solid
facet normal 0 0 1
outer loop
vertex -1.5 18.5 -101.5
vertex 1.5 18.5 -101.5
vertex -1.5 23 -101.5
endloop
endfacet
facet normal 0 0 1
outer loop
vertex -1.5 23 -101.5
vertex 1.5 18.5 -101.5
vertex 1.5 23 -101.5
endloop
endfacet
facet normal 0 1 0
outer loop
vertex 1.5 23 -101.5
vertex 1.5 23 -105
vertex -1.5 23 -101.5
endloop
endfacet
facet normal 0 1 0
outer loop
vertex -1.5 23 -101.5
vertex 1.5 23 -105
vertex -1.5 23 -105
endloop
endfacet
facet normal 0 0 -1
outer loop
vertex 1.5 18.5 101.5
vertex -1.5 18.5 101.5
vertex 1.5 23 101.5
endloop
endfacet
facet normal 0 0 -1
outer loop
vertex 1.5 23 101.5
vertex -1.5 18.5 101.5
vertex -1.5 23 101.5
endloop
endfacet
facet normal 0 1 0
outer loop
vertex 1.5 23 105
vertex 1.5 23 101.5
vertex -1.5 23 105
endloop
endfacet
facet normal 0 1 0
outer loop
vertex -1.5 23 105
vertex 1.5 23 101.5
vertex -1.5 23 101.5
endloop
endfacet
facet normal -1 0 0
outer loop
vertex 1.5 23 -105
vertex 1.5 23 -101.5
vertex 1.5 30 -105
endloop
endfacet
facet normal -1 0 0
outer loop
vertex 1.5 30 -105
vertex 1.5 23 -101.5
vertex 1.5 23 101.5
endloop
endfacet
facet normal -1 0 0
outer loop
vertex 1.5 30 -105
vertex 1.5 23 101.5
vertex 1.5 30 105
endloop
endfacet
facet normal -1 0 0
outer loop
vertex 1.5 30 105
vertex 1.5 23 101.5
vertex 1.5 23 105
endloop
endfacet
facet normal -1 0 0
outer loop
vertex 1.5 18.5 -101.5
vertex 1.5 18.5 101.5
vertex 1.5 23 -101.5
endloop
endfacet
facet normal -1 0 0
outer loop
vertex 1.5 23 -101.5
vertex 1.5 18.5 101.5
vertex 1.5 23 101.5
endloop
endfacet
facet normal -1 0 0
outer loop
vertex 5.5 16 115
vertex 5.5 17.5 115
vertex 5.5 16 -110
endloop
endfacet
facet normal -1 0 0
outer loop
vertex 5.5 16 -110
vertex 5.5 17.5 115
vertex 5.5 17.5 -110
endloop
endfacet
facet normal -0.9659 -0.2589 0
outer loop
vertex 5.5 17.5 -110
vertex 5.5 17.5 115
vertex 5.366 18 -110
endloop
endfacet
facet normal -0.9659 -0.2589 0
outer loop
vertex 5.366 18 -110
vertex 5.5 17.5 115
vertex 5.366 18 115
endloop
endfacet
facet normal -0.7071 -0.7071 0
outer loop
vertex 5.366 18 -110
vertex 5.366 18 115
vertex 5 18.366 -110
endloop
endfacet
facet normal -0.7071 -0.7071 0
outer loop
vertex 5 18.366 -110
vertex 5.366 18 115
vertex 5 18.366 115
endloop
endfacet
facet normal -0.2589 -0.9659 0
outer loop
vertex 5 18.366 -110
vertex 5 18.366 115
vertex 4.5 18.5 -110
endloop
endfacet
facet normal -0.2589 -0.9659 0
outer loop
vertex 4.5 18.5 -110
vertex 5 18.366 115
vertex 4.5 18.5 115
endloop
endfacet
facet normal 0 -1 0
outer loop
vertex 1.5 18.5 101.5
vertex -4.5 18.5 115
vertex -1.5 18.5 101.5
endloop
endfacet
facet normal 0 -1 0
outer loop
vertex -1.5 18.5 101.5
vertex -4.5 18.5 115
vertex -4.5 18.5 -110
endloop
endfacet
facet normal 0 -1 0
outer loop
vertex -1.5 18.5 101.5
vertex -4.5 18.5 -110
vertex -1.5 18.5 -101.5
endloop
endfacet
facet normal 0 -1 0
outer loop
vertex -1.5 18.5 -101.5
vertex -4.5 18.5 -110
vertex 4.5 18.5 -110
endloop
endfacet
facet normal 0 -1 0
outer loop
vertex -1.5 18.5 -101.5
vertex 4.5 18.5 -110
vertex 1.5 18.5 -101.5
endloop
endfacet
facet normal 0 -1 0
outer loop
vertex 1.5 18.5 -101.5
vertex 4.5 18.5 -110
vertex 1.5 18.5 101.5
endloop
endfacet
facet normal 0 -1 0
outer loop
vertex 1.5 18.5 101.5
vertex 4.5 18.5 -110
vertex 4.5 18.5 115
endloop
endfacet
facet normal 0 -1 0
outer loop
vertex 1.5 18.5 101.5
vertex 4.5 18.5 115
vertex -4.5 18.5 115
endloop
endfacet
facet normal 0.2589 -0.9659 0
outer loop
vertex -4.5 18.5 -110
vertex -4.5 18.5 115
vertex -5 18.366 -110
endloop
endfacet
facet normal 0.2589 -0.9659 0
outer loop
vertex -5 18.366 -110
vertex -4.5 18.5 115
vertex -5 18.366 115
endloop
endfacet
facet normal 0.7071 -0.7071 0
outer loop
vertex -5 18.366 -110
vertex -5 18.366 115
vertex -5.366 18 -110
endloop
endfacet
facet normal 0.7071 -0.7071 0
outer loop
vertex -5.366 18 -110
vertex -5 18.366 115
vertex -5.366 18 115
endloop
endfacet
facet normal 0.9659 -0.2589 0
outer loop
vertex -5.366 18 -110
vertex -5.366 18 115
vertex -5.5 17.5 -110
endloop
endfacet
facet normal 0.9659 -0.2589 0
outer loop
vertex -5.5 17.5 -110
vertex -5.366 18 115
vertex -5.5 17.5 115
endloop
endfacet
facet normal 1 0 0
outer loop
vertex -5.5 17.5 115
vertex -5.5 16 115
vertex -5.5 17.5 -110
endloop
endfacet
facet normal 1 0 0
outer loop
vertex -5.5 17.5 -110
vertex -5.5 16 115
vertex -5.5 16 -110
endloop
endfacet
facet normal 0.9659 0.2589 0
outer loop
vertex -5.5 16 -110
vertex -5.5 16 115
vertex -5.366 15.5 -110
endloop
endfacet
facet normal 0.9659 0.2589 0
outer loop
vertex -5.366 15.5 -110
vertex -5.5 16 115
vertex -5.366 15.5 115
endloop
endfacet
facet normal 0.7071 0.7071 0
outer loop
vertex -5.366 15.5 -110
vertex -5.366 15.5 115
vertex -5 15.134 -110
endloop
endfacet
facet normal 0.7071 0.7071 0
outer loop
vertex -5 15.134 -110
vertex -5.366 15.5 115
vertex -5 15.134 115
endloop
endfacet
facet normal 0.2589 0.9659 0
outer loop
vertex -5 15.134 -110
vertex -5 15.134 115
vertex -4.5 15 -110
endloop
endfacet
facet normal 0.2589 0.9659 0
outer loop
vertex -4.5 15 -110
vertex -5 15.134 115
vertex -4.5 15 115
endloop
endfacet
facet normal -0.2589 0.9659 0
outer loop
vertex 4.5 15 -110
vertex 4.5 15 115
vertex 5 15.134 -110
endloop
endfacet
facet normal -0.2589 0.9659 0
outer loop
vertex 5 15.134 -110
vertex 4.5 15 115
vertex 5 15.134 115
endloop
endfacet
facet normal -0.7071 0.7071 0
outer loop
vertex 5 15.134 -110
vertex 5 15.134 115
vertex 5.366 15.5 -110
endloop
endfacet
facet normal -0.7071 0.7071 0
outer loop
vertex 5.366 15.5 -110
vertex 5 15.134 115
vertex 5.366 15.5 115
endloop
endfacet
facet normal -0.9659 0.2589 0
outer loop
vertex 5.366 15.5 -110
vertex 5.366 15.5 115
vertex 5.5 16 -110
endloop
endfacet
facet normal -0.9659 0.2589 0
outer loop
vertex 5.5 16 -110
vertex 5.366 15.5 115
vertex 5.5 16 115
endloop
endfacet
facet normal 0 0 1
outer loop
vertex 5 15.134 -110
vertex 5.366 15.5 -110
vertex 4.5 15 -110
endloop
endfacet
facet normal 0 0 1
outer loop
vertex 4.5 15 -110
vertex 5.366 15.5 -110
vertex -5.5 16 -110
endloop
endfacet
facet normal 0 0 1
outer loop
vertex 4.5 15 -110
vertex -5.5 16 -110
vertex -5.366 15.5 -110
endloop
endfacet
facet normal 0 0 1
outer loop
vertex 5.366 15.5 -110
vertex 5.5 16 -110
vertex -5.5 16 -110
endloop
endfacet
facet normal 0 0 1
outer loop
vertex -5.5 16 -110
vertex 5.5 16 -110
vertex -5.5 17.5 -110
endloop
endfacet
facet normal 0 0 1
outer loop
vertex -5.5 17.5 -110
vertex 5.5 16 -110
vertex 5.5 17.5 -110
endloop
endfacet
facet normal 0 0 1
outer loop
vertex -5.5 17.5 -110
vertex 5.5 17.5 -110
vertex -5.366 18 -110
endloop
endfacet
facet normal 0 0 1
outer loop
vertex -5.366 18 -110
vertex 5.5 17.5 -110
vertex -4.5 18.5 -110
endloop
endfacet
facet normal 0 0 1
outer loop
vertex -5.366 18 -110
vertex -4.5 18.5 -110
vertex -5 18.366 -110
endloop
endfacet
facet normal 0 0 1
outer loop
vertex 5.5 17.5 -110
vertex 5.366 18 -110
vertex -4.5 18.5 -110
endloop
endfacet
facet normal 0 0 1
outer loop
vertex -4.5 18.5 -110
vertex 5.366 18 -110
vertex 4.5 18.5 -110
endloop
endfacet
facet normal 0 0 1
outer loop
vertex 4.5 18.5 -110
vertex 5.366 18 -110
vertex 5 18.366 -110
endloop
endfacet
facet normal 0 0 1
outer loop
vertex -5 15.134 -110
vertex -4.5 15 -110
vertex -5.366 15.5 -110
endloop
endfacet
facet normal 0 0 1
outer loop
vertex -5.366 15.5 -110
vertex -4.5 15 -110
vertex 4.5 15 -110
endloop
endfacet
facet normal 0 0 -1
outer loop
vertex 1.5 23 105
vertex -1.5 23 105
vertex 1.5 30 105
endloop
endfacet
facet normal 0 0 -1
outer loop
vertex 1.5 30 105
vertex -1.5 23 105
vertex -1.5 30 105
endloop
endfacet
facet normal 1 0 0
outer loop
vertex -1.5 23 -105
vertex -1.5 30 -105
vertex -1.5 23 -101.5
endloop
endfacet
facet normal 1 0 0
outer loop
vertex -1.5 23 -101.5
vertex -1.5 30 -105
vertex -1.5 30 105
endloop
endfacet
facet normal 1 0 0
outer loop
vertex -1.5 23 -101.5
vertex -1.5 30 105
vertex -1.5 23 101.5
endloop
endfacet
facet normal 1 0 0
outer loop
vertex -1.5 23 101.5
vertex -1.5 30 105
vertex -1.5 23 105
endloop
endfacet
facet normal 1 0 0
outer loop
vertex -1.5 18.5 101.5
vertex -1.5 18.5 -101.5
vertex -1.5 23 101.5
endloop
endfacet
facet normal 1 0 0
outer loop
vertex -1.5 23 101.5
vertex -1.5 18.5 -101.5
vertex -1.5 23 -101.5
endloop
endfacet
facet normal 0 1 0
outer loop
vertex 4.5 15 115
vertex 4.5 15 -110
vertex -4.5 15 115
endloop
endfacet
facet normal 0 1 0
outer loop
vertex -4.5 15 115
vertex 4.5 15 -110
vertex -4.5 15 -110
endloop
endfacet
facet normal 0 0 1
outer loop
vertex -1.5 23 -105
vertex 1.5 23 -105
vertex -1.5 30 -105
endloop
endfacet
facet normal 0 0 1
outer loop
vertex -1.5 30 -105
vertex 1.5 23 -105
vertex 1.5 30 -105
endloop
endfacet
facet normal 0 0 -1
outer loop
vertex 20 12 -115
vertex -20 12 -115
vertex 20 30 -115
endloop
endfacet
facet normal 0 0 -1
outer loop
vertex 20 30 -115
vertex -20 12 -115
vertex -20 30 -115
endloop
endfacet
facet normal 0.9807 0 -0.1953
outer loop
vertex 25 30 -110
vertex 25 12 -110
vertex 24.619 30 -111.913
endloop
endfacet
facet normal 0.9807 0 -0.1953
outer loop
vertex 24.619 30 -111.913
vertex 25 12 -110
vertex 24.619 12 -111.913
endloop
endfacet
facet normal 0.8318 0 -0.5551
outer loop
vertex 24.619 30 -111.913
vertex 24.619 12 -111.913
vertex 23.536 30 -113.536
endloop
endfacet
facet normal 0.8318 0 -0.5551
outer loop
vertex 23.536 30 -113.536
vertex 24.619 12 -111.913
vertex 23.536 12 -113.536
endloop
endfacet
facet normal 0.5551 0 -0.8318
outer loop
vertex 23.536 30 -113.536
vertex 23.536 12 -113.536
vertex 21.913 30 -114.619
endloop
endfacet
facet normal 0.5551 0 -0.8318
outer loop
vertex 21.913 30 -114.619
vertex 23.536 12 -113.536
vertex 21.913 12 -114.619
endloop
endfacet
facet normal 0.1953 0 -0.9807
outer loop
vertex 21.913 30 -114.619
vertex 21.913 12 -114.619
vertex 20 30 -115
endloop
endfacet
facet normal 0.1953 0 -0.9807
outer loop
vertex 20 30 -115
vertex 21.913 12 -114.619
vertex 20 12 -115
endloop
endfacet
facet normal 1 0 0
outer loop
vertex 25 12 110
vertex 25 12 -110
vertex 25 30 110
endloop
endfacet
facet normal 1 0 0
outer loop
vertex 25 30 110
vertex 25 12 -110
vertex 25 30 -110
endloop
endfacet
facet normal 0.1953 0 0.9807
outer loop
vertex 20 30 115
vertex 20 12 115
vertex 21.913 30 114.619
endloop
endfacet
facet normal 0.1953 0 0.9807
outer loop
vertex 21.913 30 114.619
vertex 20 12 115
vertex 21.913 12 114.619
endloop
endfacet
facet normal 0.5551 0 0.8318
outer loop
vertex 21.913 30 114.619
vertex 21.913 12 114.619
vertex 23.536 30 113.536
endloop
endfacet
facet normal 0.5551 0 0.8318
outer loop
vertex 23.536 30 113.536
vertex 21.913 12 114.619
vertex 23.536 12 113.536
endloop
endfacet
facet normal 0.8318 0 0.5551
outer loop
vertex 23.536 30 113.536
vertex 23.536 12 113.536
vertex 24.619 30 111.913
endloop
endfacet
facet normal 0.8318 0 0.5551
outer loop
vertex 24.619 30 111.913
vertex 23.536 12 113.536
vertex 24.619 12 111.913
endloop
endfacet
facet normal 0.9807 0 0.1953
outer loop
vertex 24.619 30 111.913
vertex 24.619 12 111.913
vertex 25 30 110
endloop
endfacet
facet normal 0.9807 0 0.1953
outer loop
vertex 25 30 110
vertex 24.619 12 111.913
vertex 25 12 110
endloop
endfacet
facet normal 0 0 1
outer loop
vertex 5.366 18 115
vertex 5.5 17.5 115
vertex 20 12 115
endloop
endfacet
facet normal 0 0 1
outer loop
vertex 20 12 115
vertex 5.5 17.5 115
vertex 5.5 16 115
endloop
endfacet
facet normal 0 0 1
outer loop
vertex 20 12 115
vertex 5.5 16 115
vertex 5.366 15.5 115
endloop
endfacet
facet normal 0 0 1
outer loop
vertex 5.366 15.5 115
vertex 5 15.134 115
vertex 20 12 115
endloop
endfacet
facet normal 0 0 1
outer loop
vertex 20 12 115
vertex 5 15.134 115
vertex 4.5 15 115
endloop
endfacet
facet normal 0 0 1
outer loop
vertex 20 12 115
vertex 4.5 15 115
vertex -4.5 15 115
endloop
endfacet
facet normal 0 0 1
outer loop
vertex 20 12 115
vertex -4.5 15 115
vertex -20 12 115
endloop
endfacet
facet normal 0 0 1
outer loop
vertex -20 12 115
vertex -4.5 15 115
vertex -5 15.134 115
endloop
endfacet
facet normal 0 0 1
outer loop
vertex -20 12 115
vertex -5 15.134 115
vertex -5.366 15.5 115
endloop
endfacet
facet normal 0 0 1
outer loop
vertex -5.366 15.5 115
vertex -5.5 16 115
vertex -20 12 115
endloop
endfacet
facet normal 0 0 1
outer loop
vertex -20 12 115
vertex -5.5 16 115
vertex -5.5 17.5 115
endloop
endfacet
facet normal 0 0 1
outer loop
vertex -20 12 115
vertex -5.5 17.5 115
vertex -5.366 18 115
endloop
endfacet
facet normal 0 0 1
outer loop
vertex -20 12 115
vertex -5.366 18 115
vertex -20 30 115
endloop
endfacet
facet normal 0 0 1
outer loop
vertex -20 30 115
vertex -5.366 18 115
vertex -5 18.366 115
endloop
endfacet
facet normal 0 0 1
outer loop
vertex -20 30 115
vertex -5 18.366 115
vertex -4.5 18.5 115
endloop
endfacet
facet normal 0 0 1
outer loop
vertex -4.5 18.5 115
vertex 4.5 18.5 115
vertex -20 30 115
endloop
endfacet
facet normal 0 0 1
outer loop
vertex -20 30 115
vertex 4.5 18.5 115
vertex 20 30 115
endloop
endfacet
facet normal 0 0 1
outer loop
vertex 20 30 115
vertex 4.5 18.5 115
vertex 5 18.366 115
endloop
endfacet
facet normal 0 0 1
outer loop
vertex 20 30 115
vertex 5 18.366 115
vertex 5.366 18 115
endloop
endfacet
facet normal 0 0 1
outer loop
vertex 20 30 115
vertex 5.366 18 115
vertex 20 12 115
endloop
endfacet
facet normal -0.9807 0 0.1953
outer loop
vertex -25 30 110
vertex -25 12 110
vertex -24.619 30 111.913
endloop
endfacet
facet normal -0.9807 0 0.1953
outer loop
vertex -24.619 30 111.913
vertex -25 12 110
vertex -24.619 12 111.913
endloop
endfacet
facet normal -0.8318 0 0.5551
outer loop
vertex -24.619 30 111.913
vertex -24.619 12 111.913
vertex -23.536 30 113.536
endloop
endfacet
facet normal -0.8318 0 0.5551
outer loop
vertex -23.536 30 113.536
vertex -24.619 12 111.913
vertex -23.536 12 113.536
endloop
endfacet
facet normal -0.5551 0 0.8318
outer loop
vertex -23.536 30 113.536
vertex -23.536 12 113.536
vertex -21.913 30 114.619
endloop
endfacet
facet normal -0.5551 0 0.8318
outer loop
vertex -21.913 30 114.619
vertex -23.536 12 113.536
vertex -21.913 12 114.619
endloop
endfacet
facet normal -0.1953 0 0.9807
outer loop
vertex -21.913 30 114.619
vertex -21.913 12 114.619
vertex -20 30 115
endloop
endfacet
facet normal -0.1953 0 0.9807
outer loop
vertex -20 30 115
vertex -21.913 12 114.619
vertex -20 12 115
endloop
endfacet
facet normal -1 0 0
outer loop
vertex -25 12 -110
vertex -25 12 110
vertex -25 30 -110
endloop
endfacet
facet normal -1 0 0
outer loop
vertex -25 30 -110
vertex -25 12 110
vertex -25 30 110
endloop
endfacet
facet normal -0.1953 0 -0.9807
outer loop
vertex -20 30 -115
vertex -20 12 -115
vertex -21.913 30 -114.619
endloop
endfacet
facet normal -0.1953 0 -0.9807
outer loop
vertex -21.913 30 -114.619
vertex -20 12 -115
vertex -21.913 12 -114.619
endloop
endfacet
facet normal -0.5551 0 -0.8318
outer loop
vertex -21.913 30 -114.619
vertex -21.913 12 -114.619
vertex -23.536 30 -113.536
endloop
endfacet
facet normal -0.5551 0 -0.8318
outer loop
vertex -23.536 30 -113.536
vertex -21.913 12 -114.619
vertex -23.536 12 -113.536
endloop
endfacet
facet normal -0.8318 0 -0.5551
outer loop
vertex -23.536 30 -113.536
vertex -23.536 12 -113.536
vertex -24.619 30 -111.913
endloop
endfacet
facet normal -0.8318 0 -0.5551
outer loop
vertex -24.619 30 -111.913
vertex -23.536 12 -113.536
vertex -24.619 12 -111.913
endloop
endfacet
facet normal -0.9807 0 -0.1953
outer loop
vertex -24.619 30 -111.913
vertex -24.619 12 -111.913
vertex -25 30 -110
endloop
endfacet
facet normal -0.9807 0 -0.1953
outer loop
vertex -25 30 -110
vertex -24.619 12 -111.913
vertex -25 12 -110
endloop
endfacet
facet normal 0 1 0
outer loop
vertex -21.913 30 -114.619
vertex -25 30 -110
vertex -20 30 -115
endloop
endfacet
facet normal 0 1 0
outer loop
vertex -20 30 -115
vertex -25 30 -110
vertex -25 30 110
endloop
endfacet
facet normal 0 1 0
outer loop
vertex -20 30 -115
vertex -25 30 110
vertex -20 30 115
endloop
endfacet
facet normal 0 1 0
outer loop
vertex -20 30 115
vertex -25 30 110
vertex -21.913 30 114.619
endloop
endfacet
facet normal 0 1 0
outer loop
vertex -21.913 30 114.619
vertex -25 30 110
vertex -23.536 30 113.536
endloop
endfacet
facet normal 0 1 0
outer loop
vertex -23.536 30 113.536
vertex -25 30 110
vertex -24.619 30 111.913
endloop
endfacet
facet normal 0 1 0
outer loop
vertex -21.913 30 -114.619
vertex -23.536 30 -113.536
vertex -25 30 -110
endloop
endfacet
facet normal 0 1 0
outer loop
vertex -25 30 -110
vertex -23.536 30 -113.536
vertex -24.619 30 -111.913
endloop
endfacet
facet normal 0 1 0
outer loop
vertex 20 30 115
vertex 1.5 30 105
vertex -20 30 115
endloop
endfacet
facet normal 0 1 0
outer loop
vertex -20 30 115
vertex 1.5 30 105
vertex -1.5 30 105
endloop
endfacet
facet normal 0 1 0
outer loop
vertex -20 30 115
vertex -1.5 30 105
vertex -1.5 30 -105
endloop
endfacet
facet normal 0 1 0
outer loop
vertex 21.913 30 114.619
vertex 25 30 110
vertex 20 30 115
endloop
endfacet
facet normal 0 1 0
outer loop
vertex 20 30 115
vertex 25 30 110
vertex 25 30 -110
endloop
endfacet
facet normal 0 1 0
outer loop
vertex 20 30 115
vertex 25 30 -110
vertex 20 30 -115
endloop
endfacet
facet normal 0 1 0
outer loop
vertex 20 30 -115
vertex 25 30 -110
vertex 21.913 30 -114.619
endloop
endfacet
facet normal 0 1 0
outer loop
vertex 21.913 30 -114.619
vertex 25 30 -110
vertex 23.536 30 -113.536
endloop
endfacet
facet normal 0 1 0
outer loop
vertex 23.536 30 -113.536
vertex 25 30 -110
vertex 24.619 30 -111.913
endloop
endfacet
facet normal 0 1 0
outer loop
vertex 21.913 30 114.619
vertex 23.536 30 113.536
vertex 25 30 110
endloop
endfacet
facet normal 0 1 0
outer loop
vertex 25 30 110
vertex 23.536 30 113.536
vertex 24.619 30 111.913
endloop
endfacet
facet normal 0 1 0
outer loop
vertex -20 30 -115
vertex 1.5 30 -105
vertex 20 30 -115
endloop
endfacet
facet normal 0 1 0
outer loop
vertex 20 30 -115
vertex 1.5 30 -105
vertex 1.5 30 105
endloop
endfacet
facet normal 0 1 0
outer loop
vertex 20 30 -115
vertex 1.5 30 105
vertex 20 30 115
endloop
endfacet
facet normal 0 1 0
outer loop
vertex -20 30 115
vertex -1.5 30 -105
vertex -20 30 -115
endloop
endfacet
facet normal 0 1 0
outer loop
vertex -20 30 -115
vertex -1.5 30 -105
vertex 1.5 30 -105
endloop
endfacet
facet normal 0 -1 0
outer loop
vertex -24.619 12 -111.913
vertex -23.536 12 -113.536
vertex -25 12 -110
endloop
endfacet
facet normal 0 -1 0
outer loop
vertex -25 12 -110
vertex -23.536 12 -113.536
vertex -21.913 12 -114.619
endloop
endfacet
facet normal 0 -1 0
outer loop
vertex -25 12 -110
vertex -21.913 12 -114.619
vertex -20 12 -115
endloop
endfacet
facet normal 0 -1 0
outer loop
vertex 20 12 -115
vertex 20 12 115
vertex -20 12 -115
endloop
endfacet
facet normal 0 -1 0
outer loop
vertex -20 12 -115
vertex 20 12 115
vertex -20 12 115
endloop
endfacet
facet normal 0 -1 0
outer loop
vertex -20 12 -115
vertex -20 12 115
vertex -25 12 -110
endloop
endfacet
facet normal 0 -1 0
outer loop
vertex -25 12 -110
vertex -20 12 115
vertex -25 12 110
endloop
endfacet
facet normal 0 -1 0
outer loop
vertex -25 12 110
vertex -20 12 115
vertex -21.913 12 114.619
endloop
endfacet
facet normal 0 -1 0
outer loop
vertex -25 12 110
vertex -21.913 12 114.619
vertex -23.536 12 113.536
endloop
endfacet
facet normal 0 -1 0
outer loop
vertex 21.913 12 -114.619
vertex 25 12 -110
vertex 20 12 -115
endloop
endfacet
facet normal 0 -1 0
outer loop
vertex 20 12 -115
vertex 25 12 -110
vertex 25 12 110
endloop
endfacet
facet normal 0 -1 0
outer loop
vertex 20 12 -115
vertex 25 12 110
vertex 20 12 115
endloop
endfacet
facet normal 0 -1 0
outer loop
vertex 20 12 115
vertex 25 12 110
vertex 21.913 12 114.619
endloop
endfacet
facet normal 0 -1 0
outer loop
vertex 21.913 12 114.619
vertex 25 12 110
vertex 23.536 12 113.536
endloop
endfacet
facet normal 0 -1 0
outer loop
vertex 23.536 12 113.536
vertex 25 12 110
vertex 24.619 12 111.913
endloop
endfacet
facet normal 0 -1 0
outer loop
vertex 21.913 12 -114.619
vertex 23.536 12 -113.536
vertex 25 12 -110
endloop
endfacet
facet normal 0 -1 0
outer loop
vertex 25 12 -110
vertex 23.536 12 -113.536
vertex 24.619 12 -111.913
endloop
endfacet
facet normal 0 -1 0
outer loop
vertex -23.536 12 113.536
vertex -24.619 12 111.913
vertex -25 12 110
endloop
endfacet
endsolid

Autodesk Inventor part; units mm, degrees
ref_plane "YZ Plane" through (0, 0, 0) normal (1, 0, 0) x (0, 1, 0)
ref_plane "XZ Plane" through (0, 0, 0) normal (0, 1, 0) x (-1, 0, 0)
ref_plane "XY Plane" through (0, 0, 0) normal (0, 0, 1) x (1, 0, 0)
sketch "Sketch1" plane through (0, 0, 0) normal (0, 1, 0) x (-1, 0, 0)
  line L0 (-20, -115) -> (20, -115)
  line L1 (25, -110) -> (25, 110)
  line L2 (20, 115) -> (-20, 115)
  line L3 (-25, 110) -> (-25, -110)
  line L4 (-5, -105) -> (5, -105)
  line L5 (5, -105) -> (5, 105)
  line L6 (5, 105) -> (-5, 105)
  line L7 (-5, 105) -> (-5, -105)
  arc A0 (25, 110) -> (20, 115) centre (20, 110) ccw
  arc A1 (-20, 115) -> (-25, 110) centre (-20, 110) ccw
  arc A2 (-25, -110) -> (-20, -115) centre (-20, -110) ccw
  arc A3 (20, -115) -> (25, -110) centre (20, -110) ccw
  line L8 (-1.5, -105) -> (1.5, -105)
  line L9 (1.5, 105) -> (-1.5, 105)
  point P0 (0, 0)
  point P1 (0, 0)
  dimension "d6" = 10
  dimension "d7" = 210
  dimension "d8" = 5
  dimension "d9" = 3
  dimension "d10" = 210
extrude "Extrusion1" add sketch "Sketch1" along normal blind 30
extrude "Extrusion2" add sketch "Sketch1" along normal blind 15 contours L7 L6 L5 L4
sketch "Sketch2" plane through (0, 30, 0) normal (0, 1, 0) x (1, 0, 0)
  line L0 (-1.5, -105) -> (1.5, -105)
  line L1 (1.5, -105) -> (1.5, 105)
  line L2 (1.5, 105) -> (-1.5, 105)
  line L3 (-1.5, 105) -> (-1.5, -105)
  line L4 (-1.5, -105) -> (1.5, 105) construction
  line L5 (1.5, -105) -> (-1.5, 105) construction
  line L6 (5, 105) -> (5, -105) projected
  line L7 (5, 105) -> (1.5, 105)
  line L8 (1.5, 105) -> (1.5, -105)
  line L9 (1.5, -105) -> (5, -105)
  line L10 (5, -105) -> (5, 105)
  line L11 (-5, 105) -> (5, 105) projected
  line L12 (-5, 105) -> (-1.5, 105)
  line L13 (-1.5, 105) -> (-1.5, -105)
  line L14 (-1.5, -105) -> (-5, -105)
  line L15 (-5, -105) -> (-5, 105)
  point P0 (0, 0)
  dimension "d15" = 3
  dimension "d16" = 210
extrude "Extrusion3" add sketch "Sketch2" against normal blind 15 contours L14 L15 L11 L3 | L1 L7 L6 L9
sketch "Sketch5" plane through (-20, 0, 115) normal (0, 0, 1) x (1, 0, 0)
  line L0 (15.5, 15) -> (24.5, 15)
  line L1 (25.5, 16) -> (25.5, 17.5)
  line L2 (24.5, 18.5) -> (15.5, 18.5)
  line L3 (14.5, 17.5) -> (14.5, 16)
  arc A0 (15.5, 18.5) -> (14.5, 17.5) centre (15.5, 17.5) ccw
  arc A1 (14.5, 16) -> (15.5, 15) centre (15.5, 16) ccw
  arc A2 (24.5, 15) -> (25.5, 16) centre (24.5, 16) ccw
  arc A3 (25.5, 17.5) -> (24.5, 18.5) centre (24.5, 17.5) ccw
  line L4 (-5, 0) -> (-5, 30) projected
  point P0 (20, 0)
  point P1 (14.5, 15)
  point P2 (25.5, 18.5)
  point P3 (25.5, 15)
  point P4 (14.5, 18.5)
  point P5 (14.5, 16.75)
  dimension "d23" = 11
  dimension "d24" = 3.5
  dimension "d27" = 1
  dimension "d38" = 19.5
extrude "Extrusion4" cut sketch "Sketch5" against normal blind 225
ref_plane "Work Plane1" through (0, 18.5, 0) normal (0, 1, 0) x (1, 0, 0)
sketch "Sketch6" plane through (0, 18.5, 0) normal (0, 1, 0) x (1, 0, 0)
  line L0 (-1.5, -105) -> (1.5, -105)
  line L1 (1.5, -105) -> (1.5, -101.5)
  line L2 (1.5, -101.5) -> (-1.5, -101.5)
  line L3 (-1.5, -101.5) -> (-1.5, -105)
  line L4 (0, 0) -> (38.1374, 0)
  line L5 (-1.5, 105) -> (1.5, 105)
  line L6 (1.5, 105) -> (1.5, 101.5)
  line L7 (1.5, 101.5) -> (-1.5, 101.5)
  line L8 (-1.5, 101.5) -> (-1.5, 105)
  dimension "d31" = 3.5
extrude "Extrusion5" add sketch "Sketch6" along normal blind 4.5
ref_plane "Work Plane2" through (0, 12.5, 0) normal (0, 1, 0) x (1, 0, 0)
move faces "Move1" translate (0, 12, 0) faces at (8.3333, 0, 36.6667)
properties part number "acrylic_base"
